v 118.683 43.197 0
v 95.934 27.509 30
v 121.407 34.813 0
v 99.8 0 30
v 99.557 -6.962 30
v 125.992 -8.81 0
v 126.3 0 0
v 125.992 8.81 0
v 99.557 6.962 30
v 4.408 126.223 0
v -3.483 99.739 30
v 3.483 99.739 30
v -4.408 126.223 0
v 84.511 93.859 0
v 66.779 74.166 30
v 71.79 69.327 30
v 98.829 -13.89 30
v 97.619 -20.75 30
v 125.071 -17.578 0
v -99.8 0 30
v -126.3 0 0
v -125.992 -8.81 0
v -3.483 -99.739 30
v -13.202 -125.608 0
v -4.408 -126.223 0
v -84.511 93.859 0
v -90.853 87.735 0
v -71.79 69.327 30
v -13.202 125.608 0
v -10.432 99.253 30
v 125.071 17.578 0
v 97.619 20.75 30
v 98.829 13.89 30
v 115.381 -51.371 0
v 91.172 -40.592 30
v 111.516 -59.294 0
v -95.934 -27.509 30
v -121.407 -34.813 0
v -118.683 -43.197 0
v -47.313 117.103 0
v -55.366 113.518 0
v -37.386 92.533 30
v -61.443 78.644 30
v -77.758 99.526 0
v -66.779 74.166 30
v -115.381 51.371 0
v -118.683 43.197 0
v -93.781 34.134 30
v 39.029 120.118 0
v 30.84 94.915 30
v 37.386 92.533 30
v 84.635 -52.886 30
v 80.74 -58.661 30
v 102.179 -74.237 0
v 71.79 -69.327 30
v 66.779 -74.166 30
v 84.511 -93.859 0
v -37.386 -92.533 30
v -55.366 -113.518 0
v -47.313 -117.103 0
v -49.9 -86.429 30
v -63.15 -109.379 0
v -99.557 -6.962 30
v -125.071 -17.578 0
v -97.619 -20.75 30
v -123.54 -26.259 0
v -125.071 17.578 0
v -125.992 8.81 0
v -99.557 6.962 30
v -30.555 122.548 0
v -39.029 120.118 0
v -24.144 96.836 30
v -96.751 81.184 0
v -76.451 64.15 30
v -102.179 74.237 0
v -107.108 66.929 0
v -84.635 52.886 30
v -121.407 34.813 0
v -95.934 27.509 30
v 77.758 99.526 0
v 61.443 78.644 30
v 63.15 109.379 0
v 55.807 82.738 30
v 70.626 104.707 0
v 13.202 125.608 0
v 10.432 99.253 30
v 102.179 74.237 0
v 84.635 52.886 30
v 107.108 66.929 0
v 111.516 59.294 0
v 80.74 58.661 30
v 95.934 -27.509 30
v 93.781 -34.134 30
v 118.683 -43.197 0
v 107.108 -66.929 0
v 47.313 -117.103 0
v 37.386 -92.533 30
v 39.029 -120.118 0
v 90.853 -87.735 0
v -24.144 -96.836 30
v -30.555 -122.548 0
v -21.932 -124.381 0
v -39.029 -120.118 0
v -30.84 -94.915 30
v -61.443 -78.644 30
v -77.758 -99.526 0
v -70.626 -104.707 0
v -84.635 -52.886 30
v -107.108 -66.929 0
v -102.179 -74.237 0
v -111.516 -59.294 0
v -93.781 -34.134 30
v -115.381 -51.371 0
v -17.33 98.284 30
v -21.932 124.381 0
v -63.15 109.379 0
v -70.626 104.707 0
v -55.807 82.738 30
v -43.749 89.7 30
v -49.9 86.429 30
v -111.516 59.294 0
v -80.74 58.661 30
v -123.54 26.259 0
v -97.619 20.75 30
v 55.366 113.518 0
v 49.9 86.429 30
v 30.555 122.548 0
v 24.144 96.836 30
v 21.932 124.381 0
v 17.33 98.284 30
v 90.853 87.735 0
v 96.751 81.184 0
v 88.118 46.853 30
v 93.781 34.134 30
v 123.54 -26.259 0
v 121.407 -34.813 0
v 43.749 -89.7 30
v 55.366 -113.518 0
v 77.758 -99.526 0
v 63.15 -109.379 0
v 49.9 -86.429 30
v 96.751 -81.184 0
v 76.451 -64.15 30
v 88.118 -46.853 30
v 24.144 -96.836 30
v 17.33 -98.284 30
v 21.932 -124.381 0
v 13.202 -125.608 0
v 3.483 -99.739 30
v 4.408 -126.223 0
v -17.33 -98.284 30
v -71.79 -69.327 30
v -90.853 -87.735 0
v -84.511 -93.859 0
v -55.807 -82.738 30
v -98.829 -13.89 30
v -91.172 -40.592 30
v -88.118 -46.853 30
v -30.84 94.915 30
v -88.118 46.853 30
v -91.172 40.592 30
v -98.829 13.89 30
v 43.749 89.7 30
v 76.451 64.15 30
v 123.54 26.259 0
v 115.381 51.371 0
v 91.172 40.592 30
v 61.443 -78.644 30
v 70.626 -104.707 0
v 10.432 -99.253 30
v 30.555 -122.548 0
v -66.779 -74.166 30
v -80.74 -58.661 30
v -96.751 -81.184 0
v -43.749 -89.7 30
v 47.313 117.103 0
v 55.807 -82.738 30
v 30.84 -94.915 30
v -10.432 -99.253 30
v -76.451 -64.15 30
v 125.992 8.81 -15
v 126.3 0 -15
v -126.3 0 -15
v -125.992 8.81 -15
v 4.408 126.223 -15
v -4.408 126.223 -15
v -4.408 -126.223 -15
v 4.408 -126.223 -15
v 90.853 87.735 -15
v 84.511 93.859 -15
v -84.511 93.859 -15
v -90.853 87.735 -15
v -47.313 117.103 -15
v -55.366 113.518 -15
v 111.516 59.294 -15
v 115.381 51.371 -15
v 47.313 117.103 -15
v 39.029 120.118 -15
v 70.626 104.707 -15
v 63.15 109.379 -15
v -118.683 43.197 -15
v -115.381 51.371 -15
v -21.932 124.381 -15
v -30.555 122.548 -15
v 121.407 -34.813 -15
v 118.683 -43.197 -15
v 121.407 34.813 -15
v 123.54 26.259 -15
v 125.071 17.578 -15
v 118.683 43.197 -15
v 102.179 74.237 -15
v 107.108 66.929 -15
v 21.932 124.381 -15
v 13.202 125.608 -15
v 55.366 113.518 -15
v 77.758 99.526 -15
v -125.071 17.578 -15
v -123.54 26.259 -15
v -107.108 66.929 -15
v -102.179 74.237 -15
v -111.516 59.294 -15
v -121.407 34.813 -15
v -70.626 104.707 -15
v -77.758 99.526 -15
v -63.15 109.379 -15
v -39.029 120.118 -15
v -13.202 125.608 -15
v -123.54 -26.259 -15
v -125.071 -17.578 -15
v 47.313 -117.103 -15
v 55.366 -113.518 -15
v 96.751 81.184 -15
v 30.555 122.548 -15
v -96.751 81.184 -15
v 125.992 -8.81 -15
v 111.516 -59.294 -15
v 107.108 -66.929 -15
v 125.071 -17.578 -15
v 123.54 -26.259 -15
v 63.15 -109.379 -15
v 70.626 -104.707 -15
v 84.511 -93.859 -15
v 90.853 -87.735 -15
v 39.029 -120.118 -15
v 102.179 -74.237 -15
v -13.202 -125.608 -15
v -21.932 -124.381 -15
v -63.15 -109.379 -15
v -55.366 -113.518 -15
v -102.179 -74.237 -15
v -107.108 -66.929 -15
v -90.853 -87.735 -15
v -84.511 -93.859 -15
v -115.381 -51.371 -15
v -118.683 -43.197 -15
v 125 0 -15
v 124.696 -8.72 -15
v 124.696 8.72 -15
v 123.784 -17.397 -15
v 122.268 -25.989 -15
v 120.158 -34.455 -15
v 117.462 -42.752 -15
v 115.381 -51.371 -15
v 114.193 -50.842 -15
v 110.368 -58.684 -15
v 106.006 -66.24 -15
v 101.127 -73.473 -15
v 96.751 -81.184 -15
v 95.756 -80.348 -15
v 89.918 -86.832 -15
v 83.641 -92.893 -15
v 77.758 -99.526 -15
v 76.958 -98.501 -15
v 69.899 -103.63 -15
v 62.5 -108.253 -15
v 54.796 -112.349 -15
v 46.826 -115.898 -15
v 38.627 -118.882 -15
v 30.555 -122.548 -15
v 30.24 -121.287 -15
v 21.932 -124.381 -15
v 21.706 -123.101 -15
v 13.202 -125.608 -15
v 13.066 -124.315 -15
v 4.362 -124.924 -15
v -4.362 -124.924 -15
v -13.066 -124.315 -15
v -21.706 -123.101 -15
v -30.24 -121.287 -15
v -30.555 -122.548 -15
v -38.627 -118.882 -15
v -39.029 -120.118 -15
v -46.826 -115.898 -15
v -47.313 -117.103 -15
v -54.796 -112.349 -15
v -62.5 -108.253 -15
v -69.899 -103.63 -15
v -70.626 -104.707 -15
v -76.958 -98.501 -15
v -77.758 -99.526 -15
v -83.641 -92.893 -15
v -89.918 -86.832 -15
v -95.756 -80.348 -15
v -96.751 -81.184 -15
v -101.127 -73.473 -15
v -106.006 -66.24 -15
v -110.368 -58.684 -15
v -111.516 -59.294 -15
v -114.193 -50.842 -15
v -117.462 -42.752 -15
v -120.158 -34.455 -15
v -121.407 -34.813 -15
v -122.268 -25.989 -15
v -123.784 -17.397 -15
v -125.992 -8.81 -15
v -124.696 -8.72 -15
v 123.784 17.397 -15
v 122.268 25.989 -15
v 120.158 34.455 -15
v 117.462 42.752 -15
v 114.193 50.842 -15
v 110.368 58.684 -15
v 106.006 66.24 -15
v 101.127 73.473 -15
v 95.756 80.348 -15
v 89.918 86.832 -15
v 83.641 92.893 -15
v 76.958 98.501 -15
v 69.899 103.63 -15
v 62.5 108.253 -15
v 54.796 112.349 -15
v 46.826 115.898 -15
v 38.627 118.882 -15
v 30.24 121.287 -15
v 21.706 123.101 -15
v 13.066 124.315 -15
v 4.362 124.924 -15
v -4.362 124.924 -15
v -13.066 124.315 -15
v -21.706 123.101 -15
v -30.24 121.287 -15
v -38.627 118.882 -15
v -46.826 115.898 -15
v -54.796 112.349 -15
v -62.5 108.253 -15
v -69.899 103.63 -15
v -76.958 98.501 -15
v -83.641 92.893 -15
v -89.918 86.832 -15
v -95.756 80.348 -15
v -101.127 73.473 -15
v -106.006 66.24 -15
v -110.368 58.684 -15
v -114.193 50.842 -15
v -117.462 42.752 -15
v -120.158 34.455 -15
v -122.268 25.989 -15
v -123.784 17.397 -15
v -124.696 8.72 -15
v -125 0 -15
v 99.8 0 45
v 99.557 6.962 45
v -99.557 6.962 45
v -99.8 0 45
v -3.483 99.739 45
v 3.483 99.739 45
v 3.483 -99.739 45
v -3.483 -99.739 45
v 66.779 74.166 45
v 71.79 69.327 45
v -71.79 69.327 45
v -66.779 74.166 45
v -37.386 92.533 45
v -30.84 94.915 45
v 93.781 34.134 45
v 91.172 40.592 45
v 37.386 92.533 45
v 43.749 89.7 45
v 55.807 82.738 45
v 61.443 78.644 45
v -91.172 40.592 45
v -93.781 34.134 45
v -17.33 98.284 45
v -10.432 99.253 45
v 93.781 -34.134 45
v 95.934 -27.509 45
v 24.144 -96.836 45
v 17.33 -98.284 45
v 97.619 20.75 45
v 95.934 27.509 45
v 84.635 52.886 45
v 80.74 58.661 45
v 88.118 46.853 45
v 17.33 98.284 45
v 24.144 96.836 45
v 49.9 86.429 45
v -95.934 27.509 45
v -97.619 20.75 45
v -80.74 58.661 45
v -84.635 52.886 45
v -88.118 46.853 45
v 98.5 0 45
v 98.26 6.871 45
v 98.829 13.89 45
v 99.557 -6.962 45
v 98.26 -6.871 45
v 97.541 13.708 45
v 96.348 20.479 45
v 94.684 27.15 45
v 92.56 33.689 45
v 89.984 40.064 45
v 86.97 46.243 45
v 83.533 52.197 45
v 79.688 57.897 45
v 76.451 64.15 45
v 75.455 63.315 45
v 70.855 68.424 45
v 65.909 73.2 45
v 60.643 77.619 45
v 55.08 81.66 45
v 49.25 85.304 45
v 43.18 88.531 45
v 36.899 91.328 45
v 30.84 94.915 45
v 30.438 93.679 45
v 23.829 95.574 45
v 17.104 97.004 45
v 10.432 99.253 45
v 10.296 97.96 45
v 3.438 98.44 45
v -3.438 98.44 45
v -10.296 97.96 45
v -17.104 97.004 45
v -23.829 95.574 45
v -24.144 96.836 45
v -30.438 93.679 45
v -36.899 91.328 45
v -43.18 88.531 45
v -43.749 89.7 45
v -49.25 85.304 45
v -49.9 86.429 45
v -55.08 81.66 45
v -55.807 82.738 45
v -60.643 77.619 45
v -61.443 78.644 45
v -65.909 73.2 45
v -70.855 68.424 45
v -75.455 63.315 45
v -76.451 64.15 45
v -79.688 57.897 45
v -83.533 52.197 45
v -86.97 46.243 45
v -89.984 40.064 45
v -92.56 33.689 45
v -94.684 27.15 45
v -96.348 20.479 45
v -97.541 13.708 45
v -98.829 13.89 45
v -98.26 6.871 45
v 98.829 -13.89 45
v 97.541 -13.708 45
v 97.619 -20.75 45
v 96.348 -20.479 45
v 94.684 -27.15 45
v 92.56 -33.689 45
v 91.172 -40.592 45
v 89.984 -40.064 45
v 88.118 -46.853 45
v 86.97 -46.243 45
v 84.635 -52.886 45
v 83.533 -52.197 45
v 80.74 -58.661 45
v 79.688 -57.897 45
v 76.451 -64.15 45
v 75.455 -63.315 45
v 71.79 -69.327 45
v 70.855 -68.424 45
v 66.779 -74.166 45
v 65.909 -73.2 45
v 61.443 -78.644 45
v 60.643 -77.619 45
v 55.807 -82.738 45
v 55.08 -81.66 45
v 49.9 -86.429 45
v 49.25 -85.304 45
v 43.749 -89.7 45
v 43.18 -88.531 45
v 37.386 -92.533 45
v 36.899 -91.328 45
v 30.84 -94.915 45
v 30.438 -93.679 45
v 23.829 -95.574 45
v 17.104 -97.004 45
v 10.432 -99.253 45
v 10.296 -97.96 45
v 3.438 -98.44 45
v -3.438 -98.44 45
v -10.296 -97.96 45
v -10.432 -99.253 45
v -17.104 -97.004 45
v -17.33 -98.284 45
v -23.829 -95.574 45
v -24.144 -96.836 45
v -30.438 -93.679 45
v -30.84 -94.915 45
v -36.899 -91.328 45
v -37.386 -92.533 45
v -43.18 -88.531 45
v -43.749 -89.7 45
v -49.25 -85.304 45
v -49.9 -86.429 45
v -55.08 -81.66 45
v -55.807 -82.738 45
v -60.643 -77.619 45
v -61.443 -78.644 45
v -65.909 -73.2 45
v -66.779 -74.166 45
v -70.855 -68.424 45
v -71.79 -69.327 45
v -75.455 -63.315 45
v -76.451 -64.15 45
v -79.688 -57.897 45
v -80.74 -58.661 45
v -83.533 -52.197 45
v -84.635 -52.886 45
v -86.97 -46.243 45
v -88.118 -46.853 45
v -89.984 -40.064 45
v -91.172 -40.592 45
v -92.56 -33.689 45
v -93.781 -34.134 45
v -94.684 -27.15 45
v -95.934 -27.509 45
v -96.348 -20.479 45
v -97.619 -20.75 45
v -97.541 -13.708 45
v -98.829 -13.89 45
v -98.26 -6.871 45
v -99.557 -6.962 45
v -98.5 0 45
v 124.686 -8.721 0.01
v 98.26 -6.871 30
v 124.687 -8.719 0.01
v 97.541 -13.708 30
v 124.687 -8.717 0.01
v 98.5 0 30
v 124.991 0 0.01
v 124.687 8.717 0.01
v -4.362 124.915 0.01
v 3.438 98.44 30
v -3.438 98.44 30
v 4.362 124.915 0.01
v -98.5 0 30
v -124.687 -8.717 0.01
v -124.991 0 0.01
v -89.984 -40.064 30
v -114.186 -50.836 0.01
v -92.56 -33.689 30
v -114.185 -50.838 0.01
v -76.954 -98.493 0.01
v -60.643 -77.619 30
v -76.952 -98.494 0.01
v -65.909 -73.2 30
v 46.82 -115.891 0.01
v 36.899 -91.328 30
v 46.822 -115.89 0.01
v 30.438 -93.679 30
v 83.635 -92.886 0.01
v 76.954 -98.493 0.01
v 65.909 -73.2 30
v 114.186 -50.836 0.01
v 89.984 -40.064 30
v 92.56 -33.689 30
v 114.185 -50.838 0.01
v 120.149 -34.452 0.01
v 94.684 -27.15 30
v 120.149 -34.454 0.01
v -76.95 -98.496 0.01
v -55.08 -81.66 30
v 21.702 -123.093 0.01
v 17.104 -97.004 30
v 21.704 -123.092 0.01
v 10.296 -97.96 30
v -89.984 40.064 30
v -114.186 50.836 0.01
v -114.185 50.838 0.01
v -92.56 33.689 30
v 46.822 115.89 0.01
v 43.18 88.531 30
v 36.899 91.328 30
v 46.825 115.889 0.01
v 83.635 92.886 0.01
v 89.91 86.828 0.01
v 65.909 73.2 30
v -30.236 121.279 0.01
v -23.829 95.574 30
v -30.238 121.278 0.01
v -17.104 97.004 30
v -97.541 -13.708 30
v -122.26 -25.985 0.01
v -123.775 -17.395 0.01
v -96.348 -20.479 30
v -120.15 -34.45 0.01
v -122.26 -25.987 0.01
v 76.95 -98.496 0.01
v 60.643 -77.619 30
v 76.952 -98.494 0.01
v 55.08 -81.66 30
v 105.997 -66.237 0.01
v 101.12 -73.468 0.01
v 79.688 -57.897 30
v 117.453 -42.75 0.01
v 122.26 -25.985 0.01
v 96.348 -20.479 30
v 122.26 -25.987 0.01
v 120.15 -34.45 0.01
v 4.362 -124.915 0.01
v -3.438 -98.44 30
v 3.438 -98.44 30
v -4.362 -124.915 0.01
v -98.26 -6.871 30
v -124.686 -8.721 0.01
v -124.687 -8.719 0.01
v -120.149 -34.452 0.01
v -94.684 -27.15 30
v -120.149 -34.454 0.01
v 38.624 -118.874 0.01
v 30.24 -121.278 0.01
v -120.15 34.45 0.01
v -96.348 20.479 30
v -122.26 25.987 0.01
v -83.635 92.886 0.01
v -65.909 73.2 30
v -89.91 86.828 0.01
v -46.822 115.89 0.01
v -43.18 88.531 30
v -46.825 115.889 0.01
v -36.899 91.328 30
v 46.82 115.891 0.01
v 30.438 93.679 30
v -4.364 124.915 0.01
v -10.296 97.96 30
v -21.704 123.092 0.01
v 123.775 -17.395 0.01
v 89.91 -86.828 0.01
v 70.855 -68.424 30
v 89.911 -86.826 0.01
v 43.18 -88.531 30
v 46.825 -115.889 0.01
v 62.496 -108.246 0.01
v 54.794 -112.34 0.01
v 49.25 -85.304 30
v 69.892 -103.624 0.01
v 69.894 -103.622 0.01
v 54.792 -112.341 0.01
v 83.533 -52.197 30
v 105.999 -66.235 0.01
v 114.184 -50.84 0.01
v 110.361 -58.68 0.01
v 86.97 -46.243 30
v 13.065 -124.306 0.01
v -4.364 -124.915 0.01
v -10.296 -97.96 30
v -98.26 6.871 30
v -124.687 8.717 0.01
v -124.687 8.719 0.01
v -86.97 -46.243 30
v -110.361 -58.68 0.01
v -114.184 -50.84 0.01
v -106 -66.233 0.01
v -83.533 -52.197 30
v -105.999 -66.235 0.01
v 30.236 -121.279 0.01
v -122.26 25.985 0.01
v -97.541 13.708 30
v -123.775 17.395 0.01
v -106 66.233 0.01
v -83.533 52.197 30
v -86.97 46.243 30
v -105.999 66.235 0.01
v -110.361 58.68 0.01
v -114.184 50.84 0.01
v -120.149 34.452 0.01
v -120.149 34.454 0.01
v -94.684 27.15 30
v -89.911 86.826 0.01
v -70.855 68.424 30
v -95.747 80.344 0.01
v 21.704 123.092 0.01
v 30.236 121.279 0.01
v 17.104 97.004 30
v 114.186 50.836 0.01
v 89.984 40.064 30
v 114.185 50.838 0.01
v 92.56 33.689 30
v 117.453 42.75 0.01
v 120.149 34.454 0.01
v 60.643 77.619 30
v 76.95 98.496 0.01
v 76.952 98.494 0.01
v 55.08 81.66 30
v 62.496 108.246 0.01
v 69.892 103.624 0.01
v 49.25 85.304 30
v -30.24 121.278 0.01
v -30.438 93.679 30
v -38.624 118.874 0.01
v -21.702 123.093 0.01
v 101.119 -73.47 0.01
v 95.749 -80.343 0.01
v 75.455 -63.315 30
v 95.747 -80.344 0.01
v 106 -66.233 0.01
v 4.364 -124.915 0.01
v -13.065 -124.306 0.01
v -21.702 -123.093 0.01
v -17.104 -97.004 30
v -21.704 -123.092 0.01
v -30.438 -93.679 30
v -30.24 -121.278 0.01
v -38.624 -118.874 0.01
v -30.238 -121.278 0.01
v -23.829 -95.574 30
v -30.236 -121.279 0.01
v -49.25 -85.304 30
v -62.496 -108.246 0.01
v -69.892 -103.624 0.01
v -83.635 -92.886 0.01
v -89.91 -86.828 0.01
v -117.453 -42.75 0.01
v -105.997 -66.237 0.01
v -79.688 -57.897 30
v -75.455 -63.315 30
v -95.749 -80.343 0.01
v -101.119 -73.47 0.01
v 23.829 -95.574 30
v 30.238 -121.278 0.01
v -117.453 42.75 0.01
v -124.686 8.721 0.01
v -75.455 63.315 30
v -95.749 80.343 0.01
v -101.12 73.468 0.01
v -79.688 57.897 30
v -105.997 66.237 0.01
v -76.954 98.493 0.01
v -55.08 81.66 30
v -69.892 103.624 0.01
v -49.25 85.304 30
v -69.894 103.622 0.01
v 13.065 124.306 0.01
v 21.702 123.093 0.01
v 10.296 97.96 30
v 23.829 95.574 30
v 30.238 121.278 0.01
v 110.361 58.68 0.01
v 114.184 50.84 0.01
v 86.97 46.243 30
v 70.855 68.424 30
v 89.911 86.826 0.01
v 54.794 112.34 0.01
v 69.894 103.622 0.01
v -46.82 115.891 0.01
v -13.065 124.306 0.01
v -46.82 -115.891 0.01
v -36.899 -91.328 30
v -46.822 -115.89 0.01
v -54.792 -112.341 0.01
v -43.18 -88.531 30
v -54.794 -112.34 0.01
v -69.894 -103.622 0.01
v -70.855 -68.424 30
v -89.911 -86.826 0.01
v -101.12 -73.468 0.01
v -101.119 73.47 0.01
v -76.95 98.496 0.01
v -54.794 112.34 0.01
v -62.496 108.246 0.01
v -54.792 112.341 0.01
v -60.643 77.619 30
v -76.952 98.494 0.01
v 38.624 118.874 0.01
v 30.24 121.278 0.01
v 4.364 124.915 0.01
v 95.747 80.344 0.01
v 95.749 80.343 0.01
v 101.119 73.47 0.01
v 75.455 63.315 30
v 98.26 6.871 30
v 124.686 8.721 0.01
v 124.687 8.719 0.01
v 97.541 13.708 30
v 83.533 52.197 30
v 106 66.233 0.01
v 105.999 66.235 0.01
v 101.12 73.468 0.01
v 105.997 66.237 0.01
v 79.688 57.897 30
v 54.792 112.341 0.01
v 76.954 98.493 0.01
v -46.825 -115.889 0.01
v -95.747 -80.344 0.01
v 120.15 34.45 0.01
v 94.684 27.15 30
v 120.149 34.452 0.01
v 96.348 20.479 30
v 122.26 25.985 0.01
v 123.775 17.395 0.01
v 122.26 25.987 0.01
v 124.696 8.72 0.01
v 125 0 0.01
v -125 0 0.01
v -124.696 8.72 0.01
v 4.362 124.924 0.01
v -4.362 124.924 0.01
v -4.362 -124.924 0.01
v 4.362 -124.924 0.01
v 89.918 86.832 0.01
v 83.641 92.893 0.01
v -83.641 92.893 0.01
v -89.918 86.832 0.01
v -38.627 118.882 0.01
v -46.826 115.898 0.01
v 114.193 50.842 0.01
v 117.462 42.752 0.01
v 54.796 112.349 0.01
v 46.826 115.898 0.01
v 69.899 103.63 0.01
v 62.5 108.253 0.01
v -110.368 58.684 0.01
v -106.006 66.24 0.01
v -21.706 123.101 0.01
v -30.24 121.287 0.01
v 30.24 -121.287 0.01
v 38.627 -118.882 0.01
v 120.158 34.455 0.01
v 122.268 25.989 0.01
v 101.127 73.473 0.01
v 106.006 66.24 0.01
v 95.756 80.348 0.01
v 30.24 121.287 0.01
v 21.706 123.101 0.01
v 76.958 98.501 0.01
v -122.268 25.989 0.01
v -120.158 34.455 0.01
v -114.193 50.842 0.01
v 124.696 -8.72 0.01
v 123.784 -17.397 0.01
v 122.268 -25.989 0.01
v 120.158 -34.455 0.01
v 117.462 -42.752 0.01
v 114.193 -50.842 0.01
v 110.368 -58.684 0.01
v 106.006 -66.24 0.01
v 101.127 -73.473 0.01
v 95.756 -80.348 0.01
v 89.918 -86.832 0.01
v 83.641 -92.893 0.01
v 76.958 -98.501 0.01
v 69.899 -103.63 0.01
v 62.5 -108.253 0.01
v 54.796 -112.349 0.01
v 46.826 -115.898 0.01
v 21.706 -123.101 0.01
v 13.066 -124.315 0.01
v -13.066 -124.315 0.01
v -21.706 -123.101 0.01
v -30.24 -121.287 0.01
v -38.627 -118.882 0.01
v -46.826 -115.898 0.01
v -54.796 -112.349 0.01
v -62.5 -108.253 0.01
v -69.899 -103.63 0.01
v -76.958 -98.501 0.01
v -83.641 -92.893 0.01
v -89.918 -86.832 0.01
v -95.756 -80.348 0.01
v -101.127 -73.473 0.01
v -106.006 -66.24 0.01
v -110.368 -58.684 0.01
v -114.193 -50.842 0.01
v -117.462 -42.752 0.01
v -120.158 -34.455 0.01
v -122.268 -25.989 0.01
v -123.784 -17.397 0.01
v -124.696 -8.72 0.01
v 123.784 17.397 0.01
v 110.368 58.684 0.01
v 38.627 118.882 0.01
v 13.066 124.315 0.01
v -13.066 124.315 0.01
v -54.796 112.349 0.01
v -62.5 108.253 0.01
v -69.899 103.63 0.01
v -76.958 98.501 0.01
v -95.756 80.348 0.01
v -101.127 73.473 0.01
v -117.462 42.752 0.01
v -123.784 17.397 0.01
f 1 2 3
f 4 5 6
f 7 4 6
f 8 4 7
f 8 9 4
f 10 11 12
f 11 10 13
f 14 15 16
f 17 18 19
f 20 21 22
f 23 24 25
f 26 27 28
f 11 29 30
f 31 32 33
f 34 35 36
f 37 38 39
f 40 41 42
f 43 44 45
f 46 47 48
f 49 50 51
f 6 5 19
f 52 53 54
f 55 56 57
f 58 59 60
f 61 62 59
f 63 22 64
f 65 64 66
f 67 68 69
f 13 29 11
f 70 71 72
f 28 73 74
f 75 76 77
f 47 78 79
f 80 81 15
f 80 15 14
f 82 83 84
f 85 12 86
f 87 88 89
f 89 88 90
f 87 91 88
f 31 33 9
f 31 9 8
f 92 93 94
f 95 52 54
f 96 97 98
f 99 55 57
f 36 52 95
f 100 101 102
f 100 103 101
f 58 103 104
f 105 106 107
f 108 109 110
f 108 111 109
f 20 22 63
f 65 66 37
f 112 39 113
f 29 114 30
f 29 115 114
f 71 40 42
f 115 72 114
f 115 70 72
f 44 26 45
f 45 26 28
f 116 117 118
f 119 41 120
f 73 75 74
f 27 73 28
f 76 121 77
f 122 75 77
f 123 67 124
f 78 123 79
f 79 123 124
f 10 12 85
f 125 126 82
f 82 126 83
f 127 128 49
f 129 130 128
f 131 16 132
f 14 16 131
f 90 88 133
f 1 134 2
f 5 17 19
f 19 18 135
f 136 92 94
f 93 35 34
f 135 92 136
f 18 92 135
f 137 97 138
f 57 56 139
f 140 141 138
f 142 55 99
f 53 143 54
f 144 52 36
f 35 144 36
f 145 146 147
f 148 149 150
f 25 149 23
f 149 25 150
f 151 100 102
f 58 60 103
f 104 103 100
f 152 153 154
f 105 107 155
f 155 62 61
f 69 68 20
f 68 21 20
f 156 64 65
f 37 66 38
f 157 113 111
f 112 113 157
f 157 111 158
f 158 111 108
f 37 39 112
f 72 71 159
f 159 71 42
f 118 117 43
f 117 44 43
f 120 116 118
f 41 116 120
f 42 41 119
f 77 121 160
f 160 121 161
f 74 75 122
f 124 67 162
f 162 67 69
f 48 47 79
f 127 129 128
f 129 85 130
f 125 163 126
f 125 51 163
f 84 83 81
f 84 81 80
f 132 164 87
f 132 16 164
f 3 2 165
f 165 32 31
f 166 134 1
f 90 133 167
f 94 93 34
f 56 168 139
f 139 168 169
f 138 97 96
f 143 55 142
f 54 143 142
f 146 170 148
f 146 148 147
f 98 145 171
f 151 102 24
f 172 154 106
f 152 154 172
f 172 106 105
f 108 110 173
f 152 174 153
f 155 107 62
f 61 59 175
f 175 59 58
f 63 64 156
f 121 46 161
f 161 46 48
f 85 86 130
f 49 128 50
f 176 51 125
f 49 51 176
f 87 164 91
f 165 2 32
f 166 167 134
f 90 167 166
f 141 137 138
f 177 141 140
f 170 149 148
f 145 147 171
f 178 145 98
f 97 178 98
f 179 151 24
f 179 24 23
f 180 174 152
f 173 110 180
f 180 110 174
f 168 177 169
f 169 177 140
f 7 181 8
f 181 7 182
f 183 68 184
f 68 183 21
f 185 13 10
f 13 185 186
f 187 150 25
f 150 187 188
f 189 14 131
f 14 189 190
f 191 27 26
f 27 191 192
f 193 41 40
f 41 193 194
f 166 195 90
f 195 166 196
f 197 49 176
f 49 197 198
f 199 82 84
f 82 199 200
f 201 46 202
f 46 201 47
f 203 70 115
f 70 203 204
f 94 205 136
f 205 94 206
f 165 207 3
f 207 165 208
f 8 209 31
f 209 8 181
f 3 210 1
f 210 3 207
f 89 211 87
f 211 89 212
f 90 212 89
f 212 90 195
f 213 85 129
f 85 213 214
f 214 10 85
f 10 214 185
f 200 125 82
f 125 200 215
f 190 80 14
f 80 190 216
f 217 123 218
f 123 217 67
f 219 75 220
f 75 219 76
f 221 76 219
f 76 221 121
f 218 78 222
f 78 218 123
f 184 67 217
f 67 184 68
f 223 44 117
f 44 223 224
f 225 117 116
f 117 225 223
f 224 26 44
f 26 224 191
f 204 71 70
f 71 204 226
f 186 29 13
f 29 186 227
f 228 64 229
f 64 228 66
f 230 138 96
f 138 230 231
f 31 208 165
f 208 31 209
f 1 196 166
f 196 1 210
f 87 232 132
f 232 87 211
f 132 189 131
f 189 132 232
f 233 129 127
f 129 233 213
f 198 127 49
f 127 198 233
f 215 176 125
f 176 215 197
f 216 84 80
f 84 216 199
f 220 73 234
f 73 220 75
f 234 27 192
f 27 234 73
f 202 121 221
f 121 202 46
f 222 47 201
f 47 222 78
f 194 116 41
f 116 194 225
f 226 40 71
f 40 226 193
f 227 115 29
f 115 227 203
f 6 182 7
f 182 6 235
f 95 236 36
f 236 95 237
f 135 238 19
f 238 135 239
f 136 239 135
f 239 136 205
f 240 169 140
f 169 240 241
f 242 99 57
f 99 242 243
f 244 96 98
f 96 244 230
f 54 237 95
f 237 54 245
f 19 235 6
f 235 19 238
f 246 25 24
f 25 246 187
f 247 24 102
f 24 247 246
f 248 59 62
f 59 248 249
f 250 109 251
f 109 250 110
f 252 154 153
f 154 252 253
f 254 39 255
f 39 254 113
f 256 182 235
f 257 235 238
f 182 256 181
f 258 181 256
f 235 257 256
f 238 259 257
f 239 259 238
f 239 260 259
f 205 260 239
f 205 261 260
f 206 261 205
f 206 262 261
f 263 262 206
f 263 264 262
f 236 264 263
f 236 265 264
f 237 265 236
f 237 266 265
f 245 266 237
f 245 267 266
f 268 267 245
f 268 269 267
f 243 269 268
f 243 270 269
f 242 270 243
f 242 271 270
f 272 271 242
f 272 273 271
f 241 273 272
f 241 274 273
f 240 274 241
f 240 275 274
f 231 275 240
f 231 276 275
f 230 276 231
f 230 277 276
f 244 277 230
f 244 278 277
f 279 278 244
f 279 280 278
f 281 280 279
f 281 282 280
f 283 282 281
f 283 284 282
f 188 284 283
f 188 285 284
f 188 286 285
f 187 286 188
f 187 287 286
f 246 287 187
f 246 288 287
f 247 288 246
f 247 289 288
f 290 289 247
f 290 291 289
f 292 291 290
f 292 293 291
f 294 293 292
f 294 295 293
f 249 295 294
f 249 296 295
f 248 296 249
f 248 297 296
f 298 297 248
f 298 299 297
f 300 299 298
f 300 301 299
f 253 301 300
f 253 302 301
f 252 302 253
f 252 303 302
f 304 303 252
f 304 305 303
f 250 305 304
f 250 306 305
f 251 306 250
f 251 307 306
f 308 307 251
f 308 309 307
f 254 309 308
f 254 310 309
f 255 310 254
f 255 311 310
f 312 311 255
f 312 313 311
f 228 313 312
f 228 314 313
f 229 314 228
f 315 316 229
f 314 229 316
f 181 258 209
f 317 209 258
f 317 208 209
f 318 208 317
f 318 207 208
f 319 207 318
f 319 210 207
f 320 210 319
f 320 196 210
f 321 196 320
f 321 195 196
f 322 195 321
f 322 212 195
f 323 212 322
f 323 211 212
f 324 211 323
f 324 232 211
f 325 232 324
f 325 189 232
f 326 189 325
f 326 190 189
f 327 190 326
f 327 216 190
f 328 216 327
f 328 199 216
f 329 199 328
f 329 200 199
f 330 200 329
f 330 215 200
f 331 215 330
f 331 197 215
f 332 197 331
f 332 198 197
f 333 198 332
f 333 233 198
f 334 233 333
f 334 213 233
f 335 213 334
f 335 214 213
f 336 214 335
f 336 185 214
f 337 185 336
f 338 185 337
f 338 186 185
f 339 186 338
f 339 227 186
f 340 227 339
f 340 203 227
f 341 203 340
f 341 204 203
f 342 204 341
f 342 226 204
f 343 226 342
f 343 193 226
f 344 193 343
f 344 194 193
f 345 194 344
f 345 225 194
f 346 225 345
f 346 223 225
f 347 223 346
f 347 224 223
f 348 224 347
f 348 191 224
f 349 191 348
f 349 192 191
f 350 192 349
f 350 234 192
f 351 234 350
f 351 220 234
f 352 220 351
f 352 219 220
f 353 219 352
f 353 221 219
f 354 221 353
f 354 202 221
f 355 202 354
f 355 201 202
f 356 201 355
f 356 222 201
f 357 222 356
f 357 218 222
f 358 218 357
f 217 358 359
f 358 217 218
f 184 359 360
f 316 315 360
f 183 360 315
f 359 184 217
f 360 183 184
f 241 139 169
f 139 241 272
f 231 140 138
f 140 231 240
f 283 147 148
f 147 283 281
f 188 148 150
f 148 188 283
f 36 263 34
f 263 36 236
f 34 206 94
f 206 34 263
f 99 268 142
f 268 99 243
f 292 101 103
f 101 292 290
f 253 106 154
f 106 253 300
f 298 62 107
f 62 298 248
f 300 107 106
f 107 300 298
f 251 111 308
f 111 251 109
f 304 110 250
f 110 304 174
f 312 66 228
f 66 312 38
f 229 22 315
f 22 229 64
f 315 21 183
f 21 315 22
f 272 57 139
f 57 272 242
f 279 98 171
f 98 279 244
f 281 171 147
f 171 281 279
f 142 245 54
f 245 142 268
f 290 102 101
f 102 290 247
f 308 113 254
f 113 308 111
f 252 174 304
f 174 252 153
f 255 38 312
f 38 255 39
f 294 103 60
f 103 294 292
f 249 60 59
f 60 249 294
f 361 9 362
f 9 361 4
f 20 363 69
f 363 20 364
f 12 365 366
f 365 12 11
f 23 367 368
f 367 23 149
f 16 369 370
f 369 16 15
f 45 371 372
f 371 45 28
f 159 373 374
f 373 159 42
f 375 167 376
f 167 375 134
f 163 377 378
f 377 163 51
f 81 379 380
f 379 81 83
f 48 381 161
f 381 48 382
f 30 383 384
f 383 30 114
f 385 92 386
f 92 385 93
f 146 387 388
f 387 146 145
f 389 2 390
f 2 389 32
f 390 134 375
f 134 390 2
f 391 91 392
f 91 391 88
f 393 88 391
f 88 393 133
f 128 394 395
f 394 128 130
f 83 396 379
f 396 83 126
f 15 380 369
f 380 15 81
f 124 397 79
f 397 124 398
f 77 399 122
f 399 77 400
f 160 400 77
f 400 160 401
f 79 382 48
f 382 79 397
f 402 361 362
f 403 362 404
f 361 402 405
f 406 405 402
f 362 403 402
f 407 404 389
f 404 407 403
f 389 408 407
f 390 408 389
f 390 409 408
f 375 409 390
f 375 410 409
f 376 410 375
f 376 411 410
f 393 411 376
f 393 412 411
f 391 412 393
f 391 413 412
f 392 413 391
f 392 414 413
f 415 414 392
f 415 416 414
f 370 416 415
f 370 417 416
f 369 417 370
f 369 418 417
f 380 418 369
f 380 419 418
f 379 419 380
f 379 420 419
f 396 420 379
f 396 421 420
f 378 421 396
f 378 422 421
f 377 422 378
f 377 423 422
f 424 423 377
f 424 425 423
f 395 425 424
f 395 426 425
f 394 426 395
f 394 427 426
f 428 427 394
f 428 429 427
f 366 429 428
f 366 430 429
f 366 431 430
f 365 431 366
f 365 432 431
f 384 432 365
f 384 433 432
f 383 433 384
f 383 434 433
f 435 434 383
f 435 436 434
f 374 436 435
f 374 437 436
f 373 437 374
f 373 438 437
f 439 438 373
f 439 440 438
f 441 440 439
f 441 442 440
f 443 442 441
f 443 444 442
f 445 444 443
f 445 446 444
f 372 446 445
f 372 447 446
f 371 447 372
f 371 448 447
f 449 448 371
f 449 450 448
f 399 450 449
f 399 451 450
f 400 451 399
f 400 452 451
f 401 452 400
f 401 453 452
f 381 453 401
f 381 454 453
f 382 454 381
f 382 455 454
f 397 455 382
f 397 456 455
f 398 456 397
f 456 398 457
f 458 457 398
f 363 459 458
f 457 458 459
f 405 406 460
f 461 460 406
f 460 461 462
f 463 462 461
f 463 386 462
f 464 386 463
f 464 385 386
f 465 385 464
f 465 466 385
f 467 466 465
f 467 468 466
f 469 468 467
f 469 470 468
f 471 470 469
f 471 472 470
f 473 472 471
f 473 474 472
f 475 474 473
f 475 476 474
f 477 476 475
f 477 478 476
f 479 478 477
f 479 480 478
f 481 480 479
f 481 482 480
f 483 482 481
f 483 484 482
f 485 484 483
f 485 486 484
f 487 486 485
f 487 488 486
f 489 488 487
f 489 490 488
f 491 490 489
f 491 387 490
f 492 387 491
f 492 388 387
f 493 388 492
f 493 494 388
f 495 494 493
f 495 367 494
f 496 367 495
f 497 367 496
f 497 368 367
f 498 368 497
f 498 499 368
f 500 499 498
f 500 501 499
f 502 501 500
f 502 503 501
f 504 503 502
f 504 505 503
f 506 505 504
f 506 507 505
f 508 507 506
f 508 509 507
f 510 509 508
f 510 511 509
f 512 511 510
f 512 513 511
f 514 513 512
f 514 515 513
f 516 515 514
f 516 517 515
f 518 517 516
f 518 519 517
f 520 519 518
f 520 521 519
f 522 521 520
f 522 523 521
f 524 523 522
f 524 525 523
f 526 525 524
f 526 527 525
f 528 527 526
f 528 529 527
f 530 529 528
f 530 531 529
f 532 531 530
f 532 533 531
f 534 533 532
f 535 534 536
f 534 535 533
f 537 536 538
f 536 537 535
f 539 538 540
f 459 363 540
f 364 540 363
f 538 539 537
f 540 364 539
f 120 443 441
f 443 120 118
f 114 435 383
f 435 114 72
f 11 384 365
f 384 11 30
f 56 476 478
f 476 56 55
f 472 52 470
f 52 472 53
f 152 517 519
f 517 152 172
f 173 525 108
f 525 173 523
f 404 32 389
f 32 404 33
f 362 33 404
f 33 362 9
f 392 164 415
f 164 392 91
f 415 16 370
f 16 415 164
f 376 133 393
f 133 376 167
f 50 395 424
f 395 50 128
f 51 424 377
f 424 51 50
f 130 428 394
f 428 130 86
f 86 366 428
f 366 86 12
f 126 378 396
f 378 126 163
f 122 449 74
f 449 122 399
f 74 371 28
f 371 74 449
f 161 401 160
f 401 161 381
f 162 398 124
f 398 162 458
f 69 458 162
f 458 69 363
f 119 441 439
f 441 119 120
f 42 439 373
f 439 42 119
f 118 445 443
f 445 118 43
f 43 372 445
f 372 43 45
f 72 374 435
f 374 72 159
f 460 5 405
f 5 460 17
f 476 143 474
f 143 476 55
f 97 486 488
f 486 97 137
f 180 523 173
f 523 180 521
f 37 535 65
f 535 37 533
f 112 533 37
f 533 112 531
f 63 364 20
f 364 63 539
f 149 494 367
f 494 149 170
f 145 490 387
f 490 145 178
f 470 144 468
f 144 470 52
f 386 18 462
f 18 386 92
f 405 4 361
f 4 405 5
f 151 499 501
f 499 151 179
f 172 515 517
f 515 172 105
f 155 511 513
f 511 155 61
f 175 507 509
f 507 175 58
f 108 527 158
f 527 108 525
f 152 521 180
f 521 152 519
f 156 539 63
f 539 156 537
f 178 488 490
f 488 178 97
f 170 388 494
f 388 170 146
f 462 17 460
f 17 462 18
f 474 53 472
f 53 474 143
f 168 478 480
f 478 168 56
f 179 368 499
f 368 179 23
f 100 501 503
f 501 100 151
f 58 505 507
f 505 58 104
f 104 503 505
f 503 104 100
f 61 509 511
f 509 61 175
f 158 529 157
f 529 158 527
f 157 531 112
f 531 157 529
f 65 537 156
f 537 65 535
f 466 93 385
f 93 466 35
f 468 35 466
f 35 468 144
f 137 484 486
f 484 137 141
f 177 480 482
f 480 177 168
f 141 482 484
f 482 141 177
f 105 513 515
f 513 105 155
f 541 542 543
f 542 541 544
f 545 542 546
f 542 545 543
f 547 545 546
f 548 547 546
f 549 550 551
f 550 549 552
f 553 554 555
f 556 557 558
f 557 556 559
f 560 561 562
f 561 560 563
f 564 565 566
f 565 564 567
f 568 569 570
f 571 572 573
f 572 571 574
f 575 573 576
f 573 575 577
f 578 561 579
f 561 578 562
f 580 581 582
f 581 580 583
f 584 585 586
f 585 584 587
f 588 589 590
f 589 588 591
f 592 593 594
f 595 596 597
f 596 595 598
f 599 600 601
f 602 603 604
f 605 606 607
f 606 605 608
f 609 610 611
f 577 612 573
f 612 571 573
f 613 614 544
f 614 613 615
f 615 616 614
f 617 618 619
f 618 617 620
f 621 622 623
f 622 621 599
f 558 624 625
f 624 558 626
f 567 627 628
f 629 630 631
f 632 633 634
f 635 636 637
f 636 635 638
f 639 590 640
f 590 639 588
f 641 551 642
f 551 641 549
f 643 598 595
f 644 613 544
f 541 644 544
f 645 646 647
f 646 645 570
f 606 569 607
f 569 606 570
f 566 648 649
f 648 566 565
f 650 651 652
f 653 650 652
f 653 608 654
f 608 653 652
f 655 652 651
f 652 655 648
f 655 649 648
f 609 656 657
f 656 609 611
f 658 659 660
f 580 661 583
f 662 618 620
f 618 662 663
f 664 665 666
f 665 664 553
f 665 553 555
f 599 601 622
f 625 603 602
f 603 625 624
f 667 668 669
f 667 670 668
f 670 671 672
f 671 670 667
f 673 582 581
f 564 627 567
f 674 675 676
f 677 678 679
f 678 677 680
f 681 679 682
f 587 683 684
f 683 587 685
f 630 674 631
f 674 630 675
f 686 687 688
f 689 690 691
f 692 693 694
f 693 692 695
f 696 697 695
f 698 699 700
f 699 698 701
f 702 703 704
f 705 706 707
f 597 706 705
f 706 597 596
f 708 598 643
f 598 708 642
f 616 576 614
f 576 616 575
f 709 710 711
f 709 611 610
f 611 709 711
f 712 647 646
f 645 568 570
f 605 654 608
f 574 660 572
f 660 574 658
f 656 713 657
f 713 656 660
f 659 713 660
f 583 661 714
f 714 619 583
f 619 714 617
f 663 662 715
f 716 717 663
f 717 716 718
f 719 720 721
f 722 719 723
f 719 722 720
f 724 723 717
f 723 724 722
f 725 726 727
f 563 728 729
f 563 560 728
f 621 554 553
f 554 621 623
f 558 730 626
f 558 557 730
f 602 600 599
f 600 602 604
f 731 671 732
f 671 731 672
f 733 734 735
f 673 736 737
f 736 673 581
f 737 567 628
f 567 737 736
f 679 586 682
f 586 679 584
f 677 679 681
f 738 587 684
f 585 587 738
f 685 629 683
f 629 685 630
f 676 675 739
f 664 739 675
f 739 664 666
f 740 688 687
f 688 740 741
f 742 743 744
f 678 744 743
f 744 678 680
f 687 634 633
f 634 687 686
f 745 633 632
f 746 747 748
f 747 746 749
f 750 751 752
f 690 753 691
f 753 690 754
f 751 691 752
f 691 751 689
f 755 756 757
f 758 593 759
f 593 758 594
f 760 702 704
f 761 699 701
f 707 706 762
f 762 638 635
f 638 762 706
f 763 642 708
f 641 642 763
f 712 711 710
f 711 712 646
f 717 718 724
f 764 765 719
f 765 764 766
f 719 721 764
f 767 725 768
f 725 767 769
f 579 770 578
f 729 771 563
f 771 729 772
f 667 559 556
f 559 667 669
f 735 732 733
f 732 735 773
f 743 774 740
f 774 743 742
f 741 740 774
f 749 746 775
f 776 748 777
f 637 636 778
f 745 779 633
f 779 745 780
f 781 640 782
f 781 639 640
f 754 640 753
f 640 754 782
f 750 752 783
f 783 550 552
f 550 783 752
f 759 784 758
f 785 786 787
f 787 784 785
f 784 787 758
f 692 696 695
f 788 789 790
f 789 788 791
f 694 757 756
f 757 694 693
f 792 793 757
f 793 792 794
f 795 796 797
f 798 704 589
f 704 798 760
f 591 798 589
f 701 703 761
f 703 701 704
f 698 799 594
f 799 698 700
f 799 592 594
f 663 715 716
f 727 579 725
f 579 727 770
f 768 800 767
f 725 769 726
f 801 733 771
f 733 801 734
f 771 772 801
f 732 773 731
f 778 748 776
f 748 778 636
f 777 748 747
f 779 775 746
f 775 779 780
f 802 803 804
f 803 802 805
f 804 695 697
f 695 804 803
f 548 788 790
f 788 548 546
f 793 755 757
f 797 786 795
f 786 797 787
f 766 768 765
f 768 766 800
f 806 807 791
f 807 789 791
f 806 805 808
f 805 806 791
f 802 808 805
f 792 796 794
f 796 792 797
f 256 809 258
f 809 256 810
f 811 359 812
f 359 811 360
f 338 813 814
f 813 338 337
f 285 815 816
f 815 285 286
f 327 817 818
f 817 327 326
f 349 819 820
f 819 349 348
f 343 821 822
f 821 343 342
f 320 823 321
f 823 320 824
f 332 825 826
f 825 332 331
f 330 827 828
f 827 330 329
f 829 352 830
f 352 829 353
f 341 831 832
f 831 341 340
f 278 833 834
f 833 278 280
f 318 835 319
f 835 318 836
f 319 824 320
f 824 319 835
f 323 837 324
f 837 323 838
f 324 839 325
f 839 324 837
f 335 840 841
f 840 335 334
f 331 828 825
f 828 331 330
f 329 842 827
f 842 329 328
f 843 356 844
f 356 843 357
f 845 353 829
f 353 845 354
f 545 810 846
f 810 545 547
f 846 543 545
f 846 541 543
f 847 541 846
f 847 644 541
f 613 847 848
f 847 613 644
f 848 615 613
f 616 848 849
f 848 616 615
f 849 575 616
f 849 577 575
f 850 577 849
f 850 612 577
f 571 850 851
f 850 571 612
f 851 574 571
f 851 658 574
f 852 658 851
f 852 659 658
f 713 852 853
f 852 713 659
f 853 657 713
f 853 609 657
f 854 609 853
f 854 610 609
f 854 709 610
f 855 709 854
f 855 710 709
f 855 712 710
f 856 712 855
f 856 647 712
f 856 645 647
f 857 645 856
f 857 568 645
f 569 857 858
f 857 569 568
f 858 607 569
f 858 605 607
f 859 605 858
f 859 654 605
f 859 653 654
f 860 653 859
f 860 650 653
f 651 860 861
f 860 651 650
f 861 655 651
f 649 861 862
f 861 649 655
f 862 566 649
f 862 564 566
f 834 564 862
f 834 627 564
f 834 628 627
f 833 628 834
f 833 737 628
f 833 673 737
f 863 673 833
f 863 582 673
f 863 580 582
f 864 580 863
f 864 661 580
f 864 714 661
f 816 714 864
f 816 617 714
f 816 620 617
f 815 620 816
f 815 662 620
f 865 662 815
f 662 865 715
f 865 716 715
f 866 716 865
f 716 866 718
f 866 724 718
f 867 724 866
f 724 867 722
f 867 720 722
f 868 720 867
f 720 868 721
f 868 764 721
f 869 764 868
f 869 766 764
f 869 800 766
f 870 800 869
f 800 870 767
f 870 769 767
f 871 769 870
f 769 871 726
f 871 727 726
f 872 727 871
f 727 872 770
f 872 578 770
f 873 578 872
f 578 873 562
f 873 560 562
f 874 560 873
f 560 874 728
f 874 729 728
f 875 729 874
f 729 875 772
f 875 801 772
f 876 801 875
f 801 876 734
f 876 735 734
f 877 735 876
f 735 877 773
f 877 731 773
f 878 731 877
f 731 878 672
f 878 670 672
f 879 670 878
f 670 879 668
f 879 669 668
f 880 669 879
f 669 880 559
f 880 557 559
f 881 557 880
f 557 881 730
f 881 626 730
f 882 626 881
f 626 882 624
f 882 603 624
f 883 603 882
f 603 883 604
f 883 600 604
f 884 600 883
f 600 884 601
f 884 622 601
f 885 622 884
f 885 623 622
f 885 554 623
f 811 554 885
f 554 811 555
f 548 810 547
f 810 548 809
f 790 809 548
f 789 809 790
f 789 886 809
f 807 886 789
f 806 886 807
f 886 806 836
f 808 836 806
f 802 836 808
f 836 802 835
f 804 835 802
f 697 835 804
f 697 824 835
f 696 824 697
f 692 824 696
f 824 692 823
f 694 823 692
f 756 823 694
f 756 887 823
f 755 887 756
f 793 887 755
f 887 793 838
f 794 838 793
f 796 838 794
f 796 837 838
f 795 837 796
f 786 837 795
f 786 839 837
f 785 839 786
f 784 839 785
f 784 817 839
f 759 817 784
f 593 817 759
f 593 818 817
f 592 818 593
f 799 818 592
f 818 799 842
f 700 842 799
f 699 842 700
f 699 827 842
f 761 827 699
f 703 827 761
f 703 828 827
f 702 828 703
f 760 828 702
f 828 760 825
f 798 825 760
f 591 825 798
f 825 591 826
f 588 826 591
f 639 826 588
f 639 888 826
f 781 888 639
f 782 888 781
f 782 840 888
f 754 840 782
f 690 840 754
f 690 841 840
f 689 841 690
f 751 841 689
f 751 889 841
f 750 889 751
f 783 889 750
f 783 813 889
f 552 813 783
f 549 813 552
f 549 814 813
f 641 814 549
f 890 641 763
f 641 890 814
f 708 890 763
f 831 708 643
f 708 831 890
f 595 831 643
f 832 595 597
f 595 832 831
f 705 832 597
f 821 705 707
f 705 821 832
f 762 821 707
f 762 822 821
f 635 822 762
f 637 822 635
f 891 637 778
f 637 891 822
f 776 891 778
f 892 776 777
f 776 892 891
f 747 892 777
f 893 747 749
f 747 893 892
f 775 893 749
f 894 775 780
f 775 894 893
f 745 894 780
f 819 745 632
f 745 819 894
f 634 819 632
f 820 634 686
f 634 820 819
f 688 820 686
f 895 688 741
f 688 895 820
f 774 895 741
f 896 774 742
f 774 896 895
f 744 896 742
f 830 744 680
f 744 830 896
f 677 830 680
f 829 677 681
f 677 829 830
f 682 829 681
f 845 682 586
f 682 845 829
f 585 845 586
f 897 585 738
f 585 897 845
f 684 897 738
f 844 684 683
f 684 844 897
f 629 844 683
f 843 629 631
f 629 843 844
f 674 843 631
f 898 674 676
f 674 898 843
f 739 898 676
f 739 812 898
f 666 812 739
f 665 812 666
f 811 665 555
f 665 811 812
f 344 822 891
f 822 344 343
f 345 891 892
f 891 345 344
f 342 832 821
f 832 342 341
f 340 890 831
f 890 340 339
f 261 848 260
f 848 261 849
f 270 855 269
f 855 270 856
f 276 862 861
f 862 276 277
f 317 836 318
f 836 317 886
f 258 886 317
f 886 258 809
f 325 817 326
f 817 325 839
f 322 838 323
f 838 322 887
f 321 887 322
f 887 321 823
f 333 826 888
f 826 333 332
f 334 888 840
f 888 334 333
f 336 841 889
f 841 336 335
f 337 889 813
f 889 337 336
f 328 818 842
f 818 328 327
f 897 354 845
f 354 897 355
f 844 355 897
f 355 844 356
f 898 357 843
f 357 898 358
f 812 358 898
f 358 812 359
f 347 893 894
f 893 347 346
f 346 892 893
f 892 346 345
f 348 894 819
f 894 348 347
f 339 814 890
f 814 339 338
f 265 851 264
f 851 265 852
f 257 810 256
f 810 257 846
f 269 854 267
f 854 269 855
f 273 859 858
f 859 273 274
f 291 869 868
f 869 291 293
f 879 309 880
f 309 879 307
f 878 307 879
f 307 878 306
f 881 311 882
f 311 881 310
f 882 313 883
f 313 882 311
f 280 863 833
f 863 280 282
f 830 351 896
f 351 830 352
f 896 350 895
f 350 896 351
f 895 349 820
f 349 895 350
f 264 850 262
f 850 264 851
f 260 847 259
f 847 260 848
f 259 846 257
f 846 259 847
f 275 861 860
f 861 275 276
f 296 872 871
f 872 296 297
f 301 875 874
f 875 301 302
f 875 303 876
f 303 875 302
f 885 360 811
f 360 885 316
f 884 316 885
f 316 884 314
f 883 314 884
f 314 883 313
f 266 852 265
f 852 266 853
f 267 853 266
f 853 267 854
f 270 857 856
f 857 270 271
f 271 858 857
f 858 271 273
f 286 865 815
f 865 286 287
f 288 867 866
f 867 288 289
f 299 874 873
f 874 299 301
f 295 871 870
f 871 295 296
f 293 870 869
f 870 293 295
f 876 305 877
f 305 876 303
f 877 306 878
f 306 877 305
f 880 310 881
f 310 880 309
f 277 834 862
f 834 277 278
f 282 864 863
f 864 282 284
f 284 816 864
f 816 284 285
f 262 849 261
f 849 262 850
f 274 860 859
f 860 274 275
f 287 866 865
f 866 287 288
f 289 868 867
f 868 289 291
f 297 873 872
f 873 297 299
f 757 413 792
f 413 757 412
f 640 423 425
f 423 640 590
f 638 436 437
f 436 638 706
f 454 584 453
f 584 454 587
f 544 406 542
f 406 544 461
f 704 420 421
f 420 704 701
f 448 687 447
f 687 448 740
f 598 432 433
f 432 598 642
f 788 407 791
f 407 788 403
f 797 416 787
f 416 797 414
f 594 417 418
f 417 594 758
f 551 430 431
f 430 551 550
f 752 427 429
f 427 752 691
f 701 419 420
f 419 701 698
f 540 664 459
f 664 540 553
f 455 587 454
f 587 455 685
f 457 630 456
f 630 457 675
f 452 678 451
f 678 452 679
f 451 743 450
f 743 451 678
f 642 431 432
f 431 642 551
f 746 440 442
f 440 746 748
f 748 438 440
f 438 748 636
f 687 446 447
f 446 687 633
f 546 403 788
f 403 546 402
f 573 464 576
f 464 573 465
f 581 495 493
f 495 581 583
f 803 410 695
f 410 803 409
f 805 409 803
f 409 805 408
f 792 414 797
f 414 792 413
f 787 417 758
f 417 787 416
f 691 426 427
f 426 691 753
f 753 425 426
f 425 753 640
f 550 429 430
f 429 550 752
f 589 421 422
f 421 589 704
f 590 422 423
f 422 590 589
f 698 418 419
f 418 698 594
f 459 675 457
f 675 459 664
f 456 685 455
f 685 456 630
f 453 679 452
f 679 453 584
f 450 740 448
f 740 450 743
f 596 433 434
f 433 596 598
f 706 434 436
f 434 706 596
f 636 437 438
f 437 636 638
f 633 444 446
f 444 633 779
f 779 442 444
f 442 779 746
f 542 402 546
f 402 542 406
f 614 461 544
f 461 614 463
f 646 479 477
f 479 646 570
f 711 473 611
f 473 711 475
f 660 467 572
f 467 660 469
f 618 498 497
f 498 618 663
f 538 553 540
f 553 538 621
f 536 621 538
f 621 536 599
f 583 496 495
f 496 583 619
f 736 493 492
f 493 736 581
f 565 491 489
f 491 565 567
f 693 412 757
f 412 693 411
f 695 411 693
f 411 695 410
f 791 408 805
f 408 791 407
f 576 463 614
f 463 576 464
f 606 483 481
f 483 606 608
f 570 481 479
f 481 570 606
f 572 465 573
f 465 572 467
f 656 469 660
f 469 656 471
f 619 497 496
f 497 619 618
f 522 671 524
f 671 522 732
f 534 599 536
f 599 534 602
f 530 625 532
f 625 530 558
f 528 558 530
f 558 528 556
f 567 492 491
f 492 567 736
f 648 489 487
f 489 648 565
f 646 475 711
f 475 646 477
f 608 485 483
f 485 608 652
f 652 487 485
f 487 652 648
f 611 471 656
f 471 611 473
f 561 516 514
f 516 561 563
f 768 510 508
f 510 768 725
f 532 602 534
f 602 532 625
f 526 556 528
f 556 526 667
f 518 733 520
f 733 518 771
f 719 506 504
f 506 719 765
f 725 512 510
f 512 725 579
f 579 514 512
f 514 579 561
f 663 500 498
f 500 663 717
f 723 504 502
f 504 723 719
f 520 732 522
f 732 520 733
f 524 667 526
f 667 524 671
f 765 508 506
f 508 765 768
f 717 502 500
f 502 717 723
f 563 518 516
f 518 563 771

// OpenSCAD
t=1.3;
td=197;
bd=250;
h=30;
end=15;

$fs=5;
$fa=4;

difference() {  
    union() {
        linear_extrude(h, scale=(td+t*2)/(bd+t*2)) circle(d=bd+t*2);
        translate([0, 0, -end]) cylinder(h=end, d=bd+t*2);
        translate([0, 0, h]) cylinder(h=end, d=td+t*2);
    }
    linear_extrude(h, scale=td/bd) circle(d=bd);
    translate([0, 0, -end-0.01]) cylinder(h=end+0.02, d=bd);
    translate([0, 0, h-0.01]) cylinder(h=end+0.02, d=td);
}
